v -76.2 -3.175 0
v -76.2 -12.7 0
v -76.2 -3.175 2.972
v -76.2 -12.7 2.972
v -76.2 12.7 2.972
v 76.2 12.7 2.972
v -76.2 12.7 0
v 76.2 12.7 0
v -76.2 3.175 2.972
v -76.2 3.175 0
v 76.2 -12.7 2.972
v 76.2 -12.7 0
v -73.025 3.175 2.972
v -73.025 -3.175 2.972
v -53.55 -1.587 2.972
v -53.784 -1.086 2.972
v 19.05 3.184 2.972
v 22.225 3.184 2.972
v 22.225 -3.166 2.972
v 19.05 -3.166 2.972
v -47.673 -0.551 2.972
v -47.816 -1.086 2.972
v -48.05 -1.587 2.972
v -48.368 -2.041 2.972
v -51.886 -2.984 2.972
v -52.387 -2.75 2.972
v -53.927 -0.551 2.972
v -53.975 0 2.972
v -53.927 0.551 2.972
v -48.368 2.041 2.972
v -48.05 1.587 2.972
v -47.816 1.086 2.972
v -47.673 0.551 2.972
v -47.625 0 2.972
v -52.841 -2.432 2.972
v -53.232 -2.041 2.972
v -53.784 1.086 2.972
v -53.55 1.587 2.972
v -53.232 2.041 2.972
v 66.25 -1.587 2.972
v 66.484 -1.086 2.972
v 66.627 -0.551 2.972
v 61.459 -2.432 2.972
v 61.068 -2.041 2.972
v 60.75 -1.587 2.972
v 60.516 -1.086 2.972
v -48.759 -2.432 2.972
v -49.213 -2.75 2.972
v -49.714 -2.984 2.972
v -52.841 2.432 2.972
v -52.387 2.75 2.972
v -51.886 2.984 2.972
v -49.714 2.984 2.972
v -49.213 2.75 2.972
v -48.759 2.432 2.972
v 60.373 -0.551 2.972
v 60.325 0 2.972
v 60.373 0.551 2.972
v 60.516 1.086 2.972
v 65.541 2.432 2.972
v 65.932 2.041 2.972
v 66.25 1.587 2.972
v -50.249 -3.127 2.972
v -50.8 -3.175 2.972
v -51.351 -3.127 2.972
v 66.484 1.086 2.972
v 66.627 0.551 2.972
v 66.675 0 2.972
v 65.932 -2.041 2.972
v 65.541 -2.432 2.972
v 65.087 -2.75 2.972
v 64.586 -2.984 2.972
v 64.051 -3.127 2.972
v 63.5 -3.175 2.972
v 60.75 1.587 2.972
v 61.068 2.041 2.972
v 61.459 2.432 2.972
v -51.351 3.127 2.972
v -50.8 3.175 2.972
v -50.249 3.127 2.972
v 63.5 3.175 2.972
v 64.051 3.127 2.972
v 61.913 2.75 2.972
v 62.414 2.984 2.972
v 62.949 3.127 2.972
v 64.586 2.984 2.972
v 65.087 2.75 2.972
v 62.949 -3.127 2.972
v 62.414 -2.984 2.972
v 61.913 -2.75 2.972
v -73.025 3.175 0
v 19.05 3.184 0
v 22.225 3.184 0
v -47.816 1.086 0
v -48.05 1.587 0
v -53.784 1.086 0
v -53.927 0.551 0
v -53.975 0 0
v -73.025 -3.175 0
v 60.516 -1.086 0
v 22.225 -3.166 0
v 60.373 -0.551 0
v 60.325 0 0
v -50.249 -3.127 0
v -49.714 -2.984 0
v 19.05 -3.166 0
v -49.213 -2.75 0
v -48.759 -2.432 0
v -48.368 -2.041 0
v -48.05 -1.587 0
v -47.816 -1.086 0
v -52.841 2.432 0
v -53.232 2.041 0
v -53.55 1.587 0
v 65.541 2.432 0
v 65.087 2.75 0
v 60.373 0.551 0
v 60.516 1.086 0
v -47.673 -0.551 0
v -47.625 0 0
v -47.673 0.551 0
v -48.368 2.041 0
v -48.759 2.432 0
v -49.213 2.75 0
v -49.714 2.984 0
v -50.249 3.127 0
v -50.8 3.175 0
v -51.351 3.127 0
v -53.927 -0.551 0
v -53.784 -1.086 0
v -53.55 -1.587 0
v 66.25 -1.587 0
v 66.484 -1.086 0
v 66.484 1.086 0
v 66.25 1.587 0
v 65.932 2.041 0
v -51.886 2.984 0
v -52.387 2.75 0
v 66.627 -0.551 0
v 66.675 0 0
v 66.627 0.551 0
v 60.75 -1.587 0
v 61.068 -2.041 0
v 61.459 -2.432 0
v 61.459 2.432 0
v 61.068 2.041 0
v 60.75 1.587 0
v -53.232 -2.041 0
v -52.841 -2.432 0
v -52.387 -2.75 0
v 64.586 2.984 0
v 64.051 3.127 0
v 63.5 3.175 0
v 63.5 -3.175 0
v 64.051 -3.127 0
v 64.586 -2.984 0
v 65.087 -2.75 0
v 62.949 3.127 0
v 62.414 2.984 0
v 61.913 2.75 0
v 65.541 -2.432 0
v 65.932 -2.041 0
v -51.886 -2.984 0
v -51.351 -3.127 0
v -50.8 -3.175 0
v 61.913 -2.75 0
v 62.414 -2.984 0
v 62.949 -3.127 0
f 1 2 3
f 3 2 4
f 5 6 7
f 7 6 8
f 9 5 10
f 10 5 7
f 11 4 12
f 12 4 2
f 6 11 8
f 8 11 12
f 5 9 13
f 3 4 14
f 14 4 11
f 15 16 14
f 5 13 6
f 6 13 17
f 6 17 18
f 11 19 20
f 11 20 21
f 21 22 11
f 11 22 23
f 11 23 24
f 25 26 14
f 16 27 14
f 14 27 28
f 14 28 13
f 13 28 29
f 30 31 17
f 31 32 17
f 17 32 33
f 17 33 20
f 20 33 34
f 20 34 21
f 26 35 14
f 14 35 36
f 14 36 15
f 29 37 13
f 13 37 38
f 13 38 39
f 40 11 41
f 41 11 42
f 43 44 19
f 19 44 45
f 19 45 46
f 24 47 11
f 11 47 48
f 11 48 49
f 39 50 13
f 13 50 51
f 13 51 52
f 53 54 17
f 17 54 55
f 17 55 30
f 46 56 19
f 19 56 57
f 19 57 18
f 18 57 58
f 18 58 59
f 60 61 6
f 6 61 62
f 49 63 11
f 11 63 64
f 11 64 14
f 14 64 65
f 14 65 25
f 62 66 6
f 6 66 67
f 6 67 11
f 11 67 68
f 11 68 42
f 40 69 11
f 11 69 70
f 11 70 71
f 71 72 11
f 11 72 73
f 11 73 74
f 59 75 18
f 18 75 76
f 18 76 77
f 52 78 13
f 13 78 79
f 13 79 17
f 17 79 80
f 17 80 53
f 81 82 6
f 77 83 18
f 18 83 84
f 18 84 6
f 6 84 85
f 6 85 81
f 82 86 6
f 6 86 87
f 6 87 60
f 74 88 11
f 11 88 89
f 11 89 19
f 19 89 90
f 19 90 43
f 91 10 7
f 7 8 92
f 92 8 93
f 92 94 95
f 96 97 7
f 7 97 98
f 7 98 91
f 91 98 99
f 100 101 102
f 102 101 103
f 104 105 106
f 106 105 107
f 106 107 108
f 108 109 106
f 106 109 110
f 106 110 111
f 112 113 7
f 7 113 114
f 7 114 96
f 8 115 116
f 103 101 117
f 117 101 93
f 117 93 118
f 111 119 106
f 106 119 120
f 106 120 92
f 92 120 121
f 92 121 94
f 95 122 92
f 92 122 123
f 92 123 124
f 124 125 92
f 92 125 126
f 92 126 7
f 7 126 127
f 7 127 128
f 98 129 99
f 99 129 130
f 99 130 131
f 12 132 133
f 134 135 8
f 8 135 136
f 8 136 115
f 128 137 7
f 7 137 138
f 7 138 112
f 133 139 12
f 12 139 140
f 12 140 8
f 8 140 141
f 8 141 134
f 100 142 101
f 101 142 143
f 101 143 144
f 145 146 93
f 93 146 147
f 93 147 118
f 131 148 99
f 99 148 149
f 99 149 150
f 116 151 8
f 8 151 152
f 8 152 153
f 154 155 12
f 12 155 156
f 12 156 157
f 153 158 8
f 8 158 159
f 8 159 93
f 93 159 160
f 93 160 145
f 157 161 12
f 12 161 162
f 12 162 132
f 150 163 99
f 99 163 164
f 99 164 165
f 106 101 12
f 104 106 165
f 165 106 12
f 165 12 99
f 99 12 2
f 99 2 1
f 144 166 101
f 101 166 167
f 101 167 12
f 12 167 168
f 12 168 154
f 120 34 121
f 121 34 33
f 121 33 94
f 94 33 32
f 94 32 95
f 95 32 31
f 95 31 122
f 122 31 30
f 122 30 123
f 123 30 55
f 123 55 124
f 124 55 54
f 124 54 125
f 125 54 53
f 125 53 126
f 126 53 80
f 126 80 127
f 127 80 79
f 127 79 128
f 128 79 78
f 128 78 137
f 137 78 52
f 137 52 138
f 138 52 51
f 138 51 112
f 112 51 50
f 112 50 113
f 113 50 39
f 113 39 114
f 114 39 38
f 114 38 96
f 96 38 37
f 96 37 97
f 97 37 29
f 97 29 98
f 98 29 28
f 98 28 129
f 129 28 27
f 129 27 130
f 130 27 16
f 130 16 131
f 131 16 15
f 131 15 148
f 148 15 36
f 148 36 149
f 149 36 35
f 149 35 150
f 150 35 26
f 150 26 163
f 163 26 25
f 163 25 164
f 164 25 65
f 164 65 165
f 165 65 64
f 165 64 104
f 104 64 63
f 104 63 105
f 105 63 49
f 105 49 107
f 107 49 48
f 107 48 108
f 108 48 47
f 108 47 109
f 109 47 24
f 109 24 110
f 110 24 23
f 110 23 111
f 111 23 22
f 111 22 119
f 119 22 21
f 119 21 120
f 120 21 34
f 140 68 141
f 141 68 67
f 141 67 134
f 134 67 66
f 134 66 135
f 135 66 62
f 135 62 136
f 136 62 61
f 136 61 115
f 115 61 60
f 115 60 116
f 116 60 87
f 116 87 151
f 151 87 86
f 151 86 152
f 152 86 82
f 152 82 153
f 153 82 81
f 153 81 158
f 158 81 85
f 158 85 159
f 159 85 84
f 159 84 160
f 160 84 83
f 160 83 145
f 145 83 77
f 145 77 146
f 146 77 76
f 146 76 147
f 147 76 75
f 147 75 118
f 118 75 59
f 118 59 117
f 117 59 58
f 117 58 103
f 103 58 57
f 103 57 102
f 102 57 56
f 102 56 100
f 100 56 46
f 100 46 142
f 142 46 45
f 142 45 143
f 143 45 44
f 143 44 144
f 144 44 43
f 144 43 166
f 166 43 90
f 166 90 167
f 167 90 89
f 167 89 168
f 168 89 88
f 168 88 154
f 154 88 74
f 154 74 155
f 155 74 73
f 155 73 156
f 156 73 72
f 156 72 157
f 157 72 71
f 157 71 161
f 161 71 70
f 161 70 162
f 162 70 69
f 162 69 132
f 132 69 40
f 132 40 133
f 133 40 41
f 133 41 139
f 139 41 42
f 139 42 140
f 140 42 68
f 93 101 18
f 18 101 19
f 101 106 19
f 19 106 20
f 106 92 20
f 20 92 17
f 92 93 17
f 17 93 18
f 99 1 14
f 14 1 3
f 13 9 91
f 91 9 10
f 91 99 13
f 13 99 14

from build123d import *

# Parameters (mm, degrees)
SKETCH1_W           = 25.4
SKETCH1_H           = 152.4
BOSS_EXTRUDE1_DEPTH = 2.9718
SKETCH7_R           = 3.175
SKETCH7_W           = 6.35
SKETCH7_H           = 6.35
SKETCH7_W_2         = 3.175
CUT_EXTRUDE5_DEPTH  = 78.308224629


with BuildPart() as part:
    # Sketch1 → Boss-Extrude1 (new body)
    with BuildSketch(Plane(origin=(0, 0, 0), x_dir=(0, 1, 0), z_dir=(0, 0, 1))):
        Rectangle(SKETCH1_W, SKETCH1_H)
    extrude(amount=BOSS_EXTRUDE1_DEPTH)

    # Sketch7 → Cut-Extrude5 (cut, through all)
    with BuildSketch(Plane.XY.offset(2.9718)):
        with Locations((-50.8, 0)):
            Circle(SKETCH7_R)
        with Locations((63.5, 0)):
            Circle(SKETCH7_R)
        with Locations((-76.2, 0)):
            Rectangle(SKETCH7_W, SKETCH7_H)
        with Locations((20.6375, 0.008508047)):
            Rectangle(SKETCH7_W_2, SKETCH7_H)
    extrude(amount=-CUT_EXTRUDE5_DEPTH, mode=Mode.SUBTRACT)


solid = part.part
